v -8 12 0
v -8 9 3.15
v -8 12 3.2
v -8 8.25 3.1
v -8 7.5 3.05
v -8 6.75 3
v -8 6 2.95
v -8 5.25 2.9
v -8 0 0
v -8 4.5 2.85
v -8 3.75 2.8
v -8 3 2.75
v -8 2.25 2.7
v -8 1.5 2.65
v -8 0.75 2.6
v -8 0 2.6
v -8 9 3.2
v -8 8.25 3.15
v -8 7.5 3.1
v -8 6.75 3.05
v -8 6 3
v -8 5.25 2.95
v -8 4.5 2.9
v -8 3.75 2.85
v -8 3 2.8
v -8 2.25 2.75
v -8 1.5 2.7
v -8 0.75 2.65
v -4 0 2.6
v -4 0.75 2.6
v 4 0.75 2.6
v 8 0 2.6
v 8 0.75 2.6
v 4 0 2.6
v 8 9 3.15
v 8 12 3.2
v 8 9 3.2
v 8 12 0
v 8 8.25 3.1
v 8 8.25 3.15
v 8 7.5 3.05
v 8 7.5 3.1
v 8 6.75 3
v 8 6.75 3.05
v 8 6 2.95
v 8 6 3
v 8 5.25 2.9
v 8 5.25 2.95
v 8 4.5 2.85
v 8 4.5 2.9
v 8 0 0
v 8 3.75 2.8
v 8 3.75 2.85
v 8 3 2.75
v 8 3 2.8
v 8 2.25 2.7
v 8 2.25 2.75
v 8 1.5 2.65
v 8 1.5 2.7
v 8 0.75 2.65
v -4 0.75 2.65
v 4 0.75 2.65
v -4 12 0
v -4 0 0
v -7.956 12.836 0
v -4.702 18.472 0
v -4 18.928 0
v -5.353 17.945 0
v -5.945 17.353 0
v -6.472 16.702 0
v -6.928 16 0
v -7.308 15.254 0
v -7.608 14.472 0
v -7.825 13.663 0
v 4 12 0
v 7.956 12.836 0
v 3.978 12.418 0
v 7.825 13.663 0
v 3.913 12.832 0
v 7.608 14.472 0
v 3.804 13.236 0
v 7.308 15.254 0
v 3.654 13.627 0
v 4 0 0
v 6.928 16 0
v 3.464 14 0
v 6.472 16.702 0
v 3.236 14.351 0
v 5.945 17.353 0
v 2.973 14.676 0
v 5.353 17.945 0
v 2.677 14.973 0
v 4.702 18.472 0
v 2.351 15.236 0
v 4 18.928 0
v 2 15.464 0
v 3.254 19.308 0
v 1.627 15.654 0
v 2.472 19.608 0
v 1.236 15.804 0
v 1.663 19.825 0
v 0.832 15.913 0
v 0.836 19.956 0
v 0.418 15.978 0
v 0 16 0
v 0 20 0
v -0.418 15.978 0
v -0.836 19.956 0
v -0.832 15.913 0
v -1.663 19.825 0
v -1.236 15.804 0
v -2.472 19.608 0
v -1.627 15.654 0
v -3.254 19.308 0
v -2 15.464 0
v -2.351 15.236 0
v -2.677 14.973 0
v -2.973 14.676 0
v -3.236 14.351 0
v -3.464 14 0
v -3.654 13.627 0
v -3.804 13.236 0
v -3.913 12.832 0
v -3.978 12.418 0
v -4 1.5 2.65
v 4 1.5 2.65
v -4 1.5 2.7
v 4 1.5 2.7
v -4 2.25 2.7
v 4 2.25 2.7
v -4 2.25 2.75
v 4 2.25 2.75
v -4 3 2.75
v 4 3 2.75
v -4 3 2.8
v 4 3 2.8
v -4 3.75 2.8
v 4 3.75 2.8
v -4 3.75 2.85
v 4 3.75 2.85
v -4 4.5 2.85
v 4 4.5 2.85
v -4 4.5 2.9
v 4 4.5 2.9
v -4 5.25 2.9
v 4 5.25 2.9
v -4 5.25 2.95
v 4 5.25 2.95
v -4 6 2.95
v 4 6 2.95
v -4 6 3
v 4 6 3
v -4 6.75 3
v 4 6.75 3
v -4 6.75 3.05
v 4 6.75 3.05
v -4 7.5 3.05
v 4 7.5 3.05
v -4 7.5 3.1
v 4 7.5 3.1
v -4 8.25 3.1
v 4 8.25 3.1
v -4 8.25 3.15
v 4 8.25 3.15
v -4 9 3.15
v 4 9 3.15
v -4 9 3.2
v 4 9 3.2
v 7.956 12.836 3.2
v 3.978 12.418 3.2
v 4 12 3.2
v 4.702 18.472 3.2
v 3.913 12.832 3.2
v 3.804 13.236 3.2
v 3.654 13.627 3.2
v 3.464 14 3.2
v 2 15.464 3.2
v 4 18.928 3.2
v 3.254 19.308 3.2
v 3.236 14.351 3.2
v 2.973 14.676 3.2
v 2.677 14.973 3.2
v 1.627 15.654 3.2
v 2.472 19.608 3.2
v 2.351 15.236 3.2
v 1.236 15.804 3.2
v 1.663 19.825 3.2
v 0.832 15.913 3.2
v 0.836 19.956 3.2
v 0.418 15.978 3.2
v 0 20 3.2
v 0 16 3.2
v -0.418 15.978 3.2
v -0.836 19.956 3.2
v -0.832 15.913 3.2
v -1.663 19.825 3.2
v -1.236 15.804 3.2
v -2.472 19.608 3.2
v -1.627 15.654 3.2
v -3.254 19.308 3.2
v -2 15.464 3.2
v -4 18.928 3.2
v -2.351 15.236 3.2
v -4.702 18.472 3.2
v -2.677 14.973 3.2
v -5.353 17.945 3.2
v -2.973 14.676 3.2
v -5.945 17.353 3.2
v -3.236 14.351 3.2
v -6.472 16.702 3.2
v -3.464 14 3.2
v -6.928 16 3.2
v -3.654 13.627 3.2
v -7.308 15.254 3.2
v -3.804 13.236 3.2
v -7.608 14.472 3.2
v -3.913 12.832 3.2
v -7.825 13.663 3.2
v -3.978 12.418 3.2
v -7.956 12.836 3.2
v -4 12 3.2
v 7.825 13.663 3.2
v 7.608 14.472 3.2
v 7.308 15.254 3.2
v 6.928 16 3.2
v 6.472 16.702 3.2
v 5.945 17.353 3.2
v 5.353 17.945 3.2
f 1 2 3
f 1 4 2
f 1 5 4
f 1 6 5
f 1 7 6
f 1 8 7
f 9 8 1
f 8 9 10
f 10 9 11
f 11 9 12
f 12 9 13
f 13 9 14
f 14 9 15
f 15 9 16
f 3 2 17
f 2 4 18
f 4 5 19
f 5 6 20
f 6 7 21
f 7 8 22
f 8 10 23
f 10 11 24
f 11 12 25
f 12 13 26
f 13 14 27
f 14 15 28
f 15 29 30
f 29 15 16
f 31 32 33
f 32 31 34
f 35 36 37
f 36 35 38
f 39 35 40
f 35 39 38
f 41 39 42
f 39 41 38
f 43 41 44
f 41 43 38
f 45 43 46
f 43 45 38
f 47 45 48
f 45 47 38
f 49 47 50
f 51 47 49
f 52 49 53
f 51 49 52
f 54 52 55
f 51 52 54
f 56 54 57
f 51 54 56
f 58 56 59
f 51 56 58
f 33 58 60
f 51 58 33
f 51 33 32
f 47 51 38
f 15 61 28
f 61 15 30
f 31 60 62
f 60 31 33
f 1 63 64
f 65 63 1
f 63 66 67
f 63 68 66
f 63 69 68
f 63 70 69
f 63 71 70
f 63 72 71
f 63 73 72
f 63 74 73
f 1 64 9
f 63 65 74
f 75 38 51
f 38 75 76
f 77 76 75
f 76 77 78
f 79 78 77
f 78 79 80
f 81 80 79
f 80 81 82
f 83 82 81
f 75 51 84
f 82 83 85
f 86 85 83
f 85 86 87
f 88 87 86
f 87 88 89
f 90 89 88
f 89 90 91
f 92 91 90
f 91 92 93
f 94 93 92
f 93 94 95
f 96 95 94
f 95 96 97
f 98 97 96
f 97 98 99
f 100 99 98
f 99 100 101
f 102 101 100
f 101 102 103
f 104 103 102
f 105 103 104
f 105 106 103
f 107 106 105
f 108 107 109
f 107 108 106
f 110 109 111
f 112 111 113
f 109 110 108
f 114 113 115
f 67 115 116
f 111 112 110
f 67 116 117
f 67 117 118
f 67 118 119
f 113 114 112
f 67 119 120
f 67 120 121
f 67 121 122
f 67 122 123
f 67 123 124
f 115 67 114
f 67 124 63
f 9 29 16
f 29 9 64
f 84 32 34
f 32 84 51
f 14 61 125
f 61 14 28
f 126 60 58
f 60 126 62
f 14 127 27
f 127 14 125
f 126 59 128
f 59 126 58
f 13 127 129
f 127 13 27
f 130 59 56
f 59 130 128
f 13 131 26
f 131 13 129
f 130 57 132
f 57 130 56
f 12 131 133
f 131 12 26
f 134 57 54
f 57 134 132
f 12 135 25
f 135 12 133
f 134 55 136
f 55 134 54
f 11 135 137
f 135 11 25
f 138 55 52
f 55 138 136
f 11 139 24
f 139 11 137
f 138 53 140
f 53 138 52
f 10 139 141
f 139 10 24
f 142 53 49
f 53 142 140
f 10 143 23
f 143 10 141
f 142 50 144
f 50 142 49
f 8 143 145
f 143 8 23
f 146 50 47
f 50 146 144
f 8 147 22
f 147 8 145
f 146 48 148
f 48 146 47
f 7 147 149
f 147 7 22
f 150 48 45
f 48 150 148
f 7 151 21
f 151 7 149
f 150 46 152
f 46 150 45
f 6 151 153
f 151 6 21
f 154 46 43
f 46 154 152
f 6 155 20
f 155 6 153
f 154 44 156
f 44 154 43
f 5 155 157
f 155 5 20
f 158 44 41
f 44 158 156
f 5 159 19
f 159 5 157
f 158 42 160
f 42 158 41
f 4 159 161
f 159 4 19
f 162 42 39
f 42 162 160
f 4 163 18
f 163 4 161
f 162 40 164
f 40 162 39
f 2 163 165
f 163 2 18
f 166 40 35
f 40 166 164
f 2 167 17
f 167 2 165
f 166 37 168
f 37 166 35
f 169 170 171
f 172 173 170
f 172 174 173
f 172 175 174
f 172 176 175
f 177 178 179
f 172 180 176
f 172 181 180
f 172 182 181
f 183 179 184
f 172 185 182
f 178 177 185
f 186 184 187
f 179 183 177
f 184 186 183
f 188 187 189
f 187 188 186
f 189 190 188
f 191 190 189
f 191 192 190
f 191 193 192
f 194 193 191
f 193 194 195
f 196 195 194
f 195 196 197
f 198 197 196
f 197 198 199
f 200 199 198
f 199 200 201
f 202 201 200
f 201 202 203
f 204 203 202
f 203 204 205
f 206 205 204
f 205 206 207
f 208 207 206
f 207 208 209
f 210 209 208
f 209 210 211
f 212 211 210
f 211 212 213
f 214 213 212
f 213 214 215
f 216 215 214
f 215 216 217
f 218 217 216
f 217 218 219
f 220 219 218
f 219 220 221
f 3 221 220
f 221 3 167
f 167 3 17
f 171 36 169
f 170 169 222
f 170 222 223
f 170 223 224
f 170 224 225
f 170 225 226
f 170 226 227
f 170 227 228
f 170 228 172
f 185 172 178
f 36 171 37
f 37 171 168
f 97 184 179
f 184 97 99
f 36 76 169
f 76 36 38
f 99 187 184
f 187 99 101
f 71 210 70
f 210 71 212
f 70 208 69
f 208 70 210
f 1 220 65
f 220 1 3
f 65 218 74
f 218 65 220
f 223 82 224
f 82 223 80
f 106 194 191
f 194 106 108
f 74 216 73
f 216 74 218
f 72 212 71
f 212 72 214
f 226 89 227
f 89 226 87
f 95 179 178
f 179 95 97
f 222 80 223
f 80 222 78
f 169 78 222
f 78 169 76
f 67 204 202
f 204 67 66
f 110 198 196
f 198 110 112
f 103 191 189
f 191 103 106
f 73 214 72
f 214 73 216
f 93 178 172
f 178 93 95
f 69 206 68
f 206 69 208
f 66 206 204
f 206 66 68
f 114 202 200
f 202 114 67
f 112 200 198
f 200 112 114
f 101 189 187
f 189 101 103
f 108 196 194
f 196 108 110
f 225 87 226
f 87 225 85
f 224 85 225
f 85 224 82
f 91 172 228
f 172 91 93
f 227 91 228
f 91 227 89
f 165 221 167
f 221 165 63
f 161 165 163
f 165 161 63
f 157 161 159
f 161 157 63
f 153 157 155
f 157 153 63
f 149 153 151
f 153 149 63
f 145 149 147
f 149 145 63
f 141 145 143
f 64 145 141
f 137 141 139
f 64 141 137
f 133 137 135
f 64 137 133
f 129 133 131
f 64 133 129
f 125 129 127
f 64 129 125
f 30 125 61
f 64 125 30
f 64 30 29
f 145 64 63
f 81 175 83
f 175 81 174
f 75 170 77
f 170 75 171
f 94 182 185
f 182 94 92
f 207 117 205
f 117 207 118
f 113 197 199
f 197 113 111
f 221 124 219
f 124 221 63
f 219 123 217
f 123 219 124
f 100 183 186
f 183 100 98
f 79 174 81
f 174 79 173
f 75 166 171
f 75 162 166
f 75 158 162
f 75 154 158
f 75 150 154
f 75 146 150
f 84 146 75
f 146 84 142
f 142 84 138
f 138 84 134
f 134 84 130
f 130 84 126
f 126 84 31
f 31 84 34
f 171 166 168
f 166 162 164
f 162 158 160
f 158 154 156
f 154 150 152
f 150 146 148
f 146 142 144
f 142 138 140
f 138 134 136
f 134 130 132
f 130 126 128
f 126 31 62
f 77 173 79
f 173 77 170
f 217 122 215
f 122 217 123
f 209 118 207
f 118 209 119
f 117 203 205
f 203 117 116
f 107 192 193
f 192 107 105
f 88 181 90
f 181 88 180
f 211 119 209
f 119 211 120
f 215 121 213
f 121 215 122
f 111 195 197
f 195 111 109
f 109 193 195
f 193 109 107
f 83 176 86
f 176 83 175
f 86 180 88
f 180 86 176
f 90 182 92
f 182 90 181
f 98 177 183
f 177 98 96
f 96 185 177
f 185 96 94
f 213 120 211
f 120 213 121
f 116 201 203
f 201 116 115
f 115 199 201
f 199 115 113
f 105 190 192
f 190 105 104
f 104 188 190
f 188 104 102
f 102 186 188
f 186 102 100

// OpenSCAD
/* MONOPRICE MP MINI DELTA, BED CHOCK
   small "chock" prevents the print bed from tilting while printing
   (see https://github.com/aegean-odyssey/mpmd-bed-chock/)
*/
/* 
Copyright (c) 2020 Aegean Associates, Inc. All rights reserved.

Redistribution and use in source and binary forms, with or without
modification, are permitted (subject to the limitations in the disclaimer
below) provided that the following conditions are met:

     * Redistributions of source code must retain the above copyright notice,
     this list of conditions and the following disclaimer.

     * Redistributions in binary form must reproduce the above copyright
     notice, this list of conditions and the following disclaimer in the
     documentation and/or other materials provided with the distribution.

     * Neither the name of the copyright holder nor the names of its
     contributors may be used to endorse or promote products derived from this
     software without specific prior written permission.

NO EXPRESS OR IMPLIED LICENSES TO ANY PARTY'S PATENT RIGHTS ARE GRANTED BY
THIS LICENSE. THIS SOFTWARE IS PROVIDED BY THE COPYRIGHT HOLDERS AND
CONTRIBUTORS "AS IS" AND ANY EXPRESS OR IMPLIED WARRANTIES, INCLUDING, BUT NOT
LIMITED TO, THE IMPLIED WARRANTIES OF MERCHANTABILITY AND FITNESS FOR A
PARTICULAR PURPOSE ARE DISCLAIMED. IN NO EVENT SHALL THE COPYRIGHT HOLDER OR
CONTRIBUTORS BE LIABLE FOR ANY DIRECT, INDIRECT, INCIDENTAL, SPECIAL,
EXEMPLARY, OR CONSEQUENTIAL DAMAGES (INCLUDING, BUT NOT LIMITED TO,
PROCUREMENT OF SUBSTITUTE GOODS OR SERVICES; LOSS OF USE, DATA, OR PROFITS; OR
BUSINESS INTERRUPTION) HOWEVER CAUSED AND ON ANY THEORY OF LIABILITY, WHETHER
IN CONTRACT, STRICT LIABILITY, OR TORT (INCLUDING NEGLIGENCE OR OTHERWISE)
ARISING IN ANY WAY OUT OF THE USE OF THIS SOFTWARE, EVEN IF ADVISED OF THE
POSSIBILITY OF SUCH DAMAGE.
*/   

/* 3D PRINTING
   layer height:        0.050mm
   first layer height:  0.200mm
   perimiters:          3
   bottom solid layers: 10
   top solid layers:    15
   fill density:        25%
*/
   
/* HOW TO USE
   After the printer performs its initial calibration "bed taps",
   gently slide the three (3) chocks in place under the bed at each
   of the switches. This should prevent the bed from tilting.
*/

module chock() {

    N = 12;     // number of steps
    r = 0.05;   // rise of each step
    d = 0.75;   // step depth
    h = 2.6;    // step height (1st)
    w = 16.0;   // step width
    u = 8.0;    // cutout
    t = 3.0;    // post offset
    f = h+r*N;  // final height

    module blank() {
        $fn = 60;  // arc smoothing
        e = 0.01;  // tiny "nudge" bit
        module co() { cylinder(d=w, h=f+2*e); }
        module ci() { cylinder(d=u, h=f+3*e); }
        difference() {
            y = t + d*N;
            translate([0, 0, -2*e/2])
            hull() { co(); translate([0, y]) co(); }
            translate([0, 0, -3*e/2])
            hull() { ci(); translate([0, y]) ci(); }

        }
    }
 
    module wedge() {
        for (i=[0:N-1], o=d*i, z=h+r*i)
            translate([-w/2, o]) cube([w, d, z]);
        translate([-w/2, d*N]) cube([w, t+w/2, f]);
    }

    intersection() {
        wedge();
        blank();
    }
}

chock();
